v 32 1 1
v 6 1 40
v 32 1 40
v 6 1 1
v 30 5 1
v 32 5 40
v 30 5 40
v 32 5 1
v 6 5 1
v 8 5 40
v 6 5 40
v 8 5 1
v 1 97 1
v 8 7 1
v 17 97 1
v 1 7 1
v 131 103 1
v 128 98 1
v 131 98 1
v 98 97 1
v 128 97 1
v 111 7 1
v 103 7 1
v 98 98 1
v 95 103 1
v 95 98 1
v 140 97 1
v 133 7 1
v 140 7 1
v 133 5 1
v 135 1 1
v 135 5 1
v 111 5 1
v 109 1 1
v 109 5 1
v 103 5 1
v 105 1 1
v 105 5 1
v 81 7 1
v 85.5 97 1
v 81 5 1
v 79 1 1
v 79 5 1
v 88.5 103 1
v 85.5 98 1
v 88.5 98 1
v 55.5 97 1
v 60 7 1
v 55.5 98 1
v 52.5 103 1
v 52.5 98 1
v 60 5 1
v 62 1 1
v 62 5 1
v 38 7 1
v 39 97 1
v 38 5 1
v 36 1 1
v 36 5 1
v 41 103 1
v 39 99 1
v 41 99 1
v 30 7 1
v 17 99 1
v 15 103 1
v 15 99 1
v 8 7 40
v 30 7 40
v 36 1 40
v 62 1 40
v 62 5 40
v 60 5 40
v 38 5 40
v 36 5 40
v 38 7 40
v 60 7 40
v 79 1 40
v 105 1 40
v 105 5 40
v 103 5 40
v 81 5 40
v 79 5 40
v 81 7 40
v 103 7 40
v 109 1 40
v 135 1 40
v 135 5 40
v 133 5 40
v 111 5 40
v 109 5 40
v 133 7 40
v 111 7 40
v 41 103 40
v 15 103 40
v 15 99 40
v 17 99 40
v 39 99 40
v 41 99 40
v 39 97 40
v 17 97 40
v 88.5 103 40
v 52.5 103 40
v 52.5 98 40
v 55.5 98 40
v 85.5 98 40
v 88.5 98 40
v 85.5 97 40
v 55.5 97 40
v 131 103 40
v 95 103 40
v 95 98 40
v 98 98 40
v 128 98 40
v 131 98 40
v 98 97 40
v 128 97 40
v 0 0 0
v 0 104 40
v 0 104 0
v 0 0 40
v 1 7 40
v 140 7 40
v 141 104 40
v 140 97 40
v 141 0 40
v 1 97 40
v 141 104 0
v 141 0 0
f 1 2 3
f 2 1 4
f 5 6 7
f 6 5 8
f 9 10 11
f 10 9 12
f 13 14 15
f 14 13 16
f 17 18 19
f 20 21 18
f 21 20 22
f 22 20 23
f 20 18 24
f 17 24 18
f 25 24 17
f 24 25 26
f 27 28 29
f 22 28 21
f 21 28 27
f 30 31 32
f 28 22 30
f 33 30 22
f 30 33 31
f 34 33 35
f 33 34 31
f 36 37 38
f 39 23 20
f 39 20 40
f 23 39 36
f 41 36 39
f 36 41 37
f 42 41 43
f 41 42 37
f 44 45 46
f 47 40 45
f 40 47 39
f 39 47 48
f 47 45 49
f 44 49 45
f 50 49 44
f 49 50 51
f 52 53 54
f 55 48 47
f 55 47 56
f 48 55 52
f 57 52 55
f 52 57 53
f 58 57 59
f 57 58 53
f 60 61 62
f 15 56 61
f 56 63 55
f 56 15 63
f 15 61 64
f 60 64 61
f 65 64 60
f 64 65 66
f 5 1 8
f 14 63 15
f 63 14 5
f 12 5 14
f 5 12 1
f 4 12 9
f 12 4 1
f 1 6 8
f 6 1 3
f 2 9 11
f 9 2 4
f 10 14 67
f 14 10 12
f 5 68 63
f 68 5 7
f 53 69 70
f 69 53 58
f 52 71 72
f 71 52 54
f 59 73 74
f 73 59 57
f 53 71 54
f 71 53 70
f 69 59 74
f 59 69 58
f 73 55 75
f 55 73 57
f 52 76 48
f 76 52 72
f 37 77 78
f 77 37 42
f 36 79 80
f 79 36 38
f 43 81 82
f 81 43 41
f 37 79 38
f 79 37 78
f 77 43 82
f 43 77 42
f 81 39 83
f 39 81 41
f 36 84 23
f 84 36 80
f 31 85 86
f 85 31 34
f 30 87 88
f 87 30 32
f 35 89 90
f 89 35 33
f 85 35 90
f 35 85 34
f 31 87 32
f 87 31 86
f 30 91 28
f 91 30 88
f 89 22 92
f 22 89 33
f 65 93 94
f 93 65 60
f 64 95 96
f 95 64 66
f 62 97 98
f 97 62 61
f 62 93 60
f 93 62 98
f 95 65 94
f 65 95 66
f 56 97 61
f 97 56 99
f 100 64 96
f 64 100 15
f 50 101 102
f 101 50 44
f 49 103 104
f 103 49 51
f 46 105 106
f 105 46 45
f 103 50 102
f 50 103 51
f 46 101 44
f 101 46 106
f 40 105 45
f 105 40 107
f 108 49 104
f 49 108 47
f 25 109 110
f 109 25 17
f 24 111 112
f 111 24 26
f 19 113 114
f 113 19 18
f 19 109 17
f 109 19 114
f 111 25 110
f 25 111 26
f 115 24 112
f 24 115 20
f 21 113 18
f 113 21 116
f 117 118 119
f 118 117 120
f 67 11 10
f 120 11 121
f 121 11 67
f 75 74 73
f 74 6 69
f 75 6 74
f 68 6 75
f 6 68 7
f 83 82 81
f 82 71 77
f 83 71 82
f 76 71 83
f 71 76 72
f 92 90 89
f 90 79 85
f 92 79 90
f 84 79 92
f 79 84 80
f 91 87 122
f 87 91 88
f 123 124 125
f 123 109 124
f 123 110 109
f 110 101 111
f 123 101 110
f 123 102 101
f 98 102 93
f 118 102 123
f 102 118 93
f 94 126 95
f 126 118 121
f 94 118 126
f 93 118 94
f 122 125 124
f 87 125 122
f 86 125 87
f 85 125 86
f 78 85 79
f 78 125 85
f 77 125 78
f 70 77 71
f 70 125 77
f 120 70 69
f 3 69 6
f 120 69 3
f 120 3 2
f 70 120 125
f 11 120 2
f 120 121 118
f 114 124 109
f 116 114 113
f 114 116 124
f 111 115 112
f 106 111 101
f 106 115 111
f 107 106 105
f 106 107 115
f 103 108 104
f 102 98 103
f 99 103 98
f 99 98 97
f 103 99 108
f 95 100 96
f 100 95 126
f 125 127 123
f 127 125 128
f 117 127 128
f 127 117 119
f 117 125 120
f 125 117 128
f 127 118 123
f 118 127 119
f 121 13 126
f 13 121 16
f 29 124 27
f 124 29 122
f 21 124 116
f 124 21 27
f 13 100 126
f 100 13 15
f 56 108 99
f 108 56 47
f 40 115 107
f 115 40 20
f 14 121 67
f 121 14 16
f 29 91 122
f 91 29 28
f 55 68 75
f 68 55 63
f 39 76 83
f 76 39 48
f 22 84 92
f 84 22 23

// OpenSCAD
// 208 - 67
BOX_X = 208 - 67;
BOX_Y = 104;
BOX_Z = 40;

THICK = 1;
MARGIN = 6;

MODEL_W = 4;
MODEL_L = 26;
MODEL_M = 2;

BIG_MODEL_W = 5;
BIG_MODEL_L = 36;
BIG_MODEL_M = 3;

difference() {
    cube(size = [
        BOX_X,
        BOX_Y, 
        BOX_Z]);

    translate([
        THICK, 
        MARGIN + THICK, 
        THICK]) {
            
        cube(size = [
            BOX_X - (THICK * 2),
            BOX_Y - (MARGIN * 2) - (THICK * 2),
            BOX_Z]);
    }


    modelSlot(THICK, -32, 90);
    modelSlot(THICK, -62, 90);
    modelSlot(THICK, -105, 90);
    modelSlot(THICK, -135, 90);
    
    modelSlot(THICK - BOX_Y, 15, 270);
    big_modelSlot(THICK - BOX_Y, (BOX_X / 2) - (BIG_MODEL_L / 2), 270);
    big_modelSlot(THICK - BOX_Y, 95, 270);

    
    //modelSlot(90, 0, 0);
    //modelSlot(180, 0, 0);
    //modelSlot(270, 0, 0);
}

//big_modelSlot(THICK - BOX_Y, (BOX_Y / 2) + (BIG_MODEL_L / 2), 270);

module modelSlot(x, y, rot) {
    rotate([0, 0, rot]) {
        translate([x, y, THICK]) {
            cube(size = [
                MODEL_W,
                MODEL_L,
                BOX_Z]);
        }        
        
        translate([x + MODEL_M, y + MODEL_M, THICK]) {
            cube(size = [
                MODEL_W + 2,
                MODEL_L - (MODEL_M * 2),
                BOX_Z]);
        }
    }
}

module big_modelSlot(x, y, rot) {
    rotate([0, 0, rot]) {
        translate([x, y, THICK]) {
            cube(size = [
                BIG_MODEL_W,
                BIG_MODEL_L,
                BOX_Z]);
        }        
        
        translate([x + BIG_MODEL_M, y + BIG_MODEL_M, THICK]) {
            cube(size = [
                BIG_MODEL_W + 2,
                BIG_MODEL_L - (BIG_MODEL_M * 2),
                BOX_Z]);
        }
    }
}
